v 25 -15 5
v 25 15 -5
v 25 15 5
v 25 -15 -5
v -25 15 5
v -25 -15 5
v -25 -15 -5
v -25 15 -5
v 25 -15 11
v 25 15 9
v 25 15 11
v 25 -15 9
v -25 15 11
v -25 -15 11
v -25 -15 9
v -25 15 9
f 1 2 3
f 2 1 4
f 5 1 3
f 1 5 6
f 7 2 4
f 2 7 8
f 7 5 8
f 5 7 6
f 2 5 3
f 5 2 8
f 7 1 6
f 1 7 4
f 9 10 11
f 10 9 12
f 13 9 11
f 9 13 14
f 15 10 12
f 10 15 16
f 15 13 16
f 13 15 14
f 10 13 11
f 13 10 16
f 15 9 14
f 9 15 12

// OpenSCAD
// Base block
module base_block() {
    cube([50, 30, 10], center = true);
}

// Flat plate
module flat_plate() {
    translate([0, 0, 10]) // Position above the base block
    cube([50, 30, 2], center = true);
}

// Trapezoidal block
module trapezoidal_block() {
    translate([0, 0, 12]) // Position above the flat plate
    polyhedron(
        points = [
            [-25, -15, 0], [25, -15, 0], [20, 15, 0], [-20, 15, 0], // Bottom vertices
            [-25, -15, 10], [25, -15, 10], [20, 15, 10], [-20, 15, 10]  // Top vertices
        ],
        faces = [
            [0, 1, 5, 4], [1, 2, 6, 5], [2, 3, 7, 6], [3, 0, 4, 7], // Side faces
            [0, 1, 2, 3], [4, 5, 6, 7] // Top and bottom faces
        ]
    );
}

// Triangular prism
module triangular_prism() {
    translate([0, 0, 22]) // Position above the trapezoidal block
    polyhedron(
        points = [
            [-15, -10, 0], [15, -10, 0], [0, 10, 0], // Bottom vertices
            [-15, -10, 10], [15, -10, 10], [0, 10, 10]  // Top vertices
        ],
        faces = [
            [0, 1, 2], [3, 4, 5], // Triangular faces
            [0, 1, 4, 3], [1, 2, 5, 4], [2, 0, 3, 5] // Rectangular faces
        ]
    );
}

// Wedge-shaped block
module wedge_shaped_block() {
    translate([0, 0, 32]) // Position above the triangular prism
    polyhedron(
        points = [
            [-10, -10, 0], [10, -10, 0], [10, 10, 0], [-10, 10, 0], // Bottom vertices
            [-10, -10, 10], [10, -10, 10], [0, 10, 10]  // Top vertices
        ],
        faces = [
            [0, 1, 5, 4], [1, 2, 6, 5], [2, 3, 6], [3, 0, 4, 6], // Side faces
            [0, 1, 2, 3], [4, 5, 6] // Bottom and top faces
        ]
    );
}

// Assembly
module assembly() {
    base_block();
    flat_plate();
    trapezoidal_block();
    triangular_prism();
    wedge_shaped_block();
}

// Render the assembly
assembly();
